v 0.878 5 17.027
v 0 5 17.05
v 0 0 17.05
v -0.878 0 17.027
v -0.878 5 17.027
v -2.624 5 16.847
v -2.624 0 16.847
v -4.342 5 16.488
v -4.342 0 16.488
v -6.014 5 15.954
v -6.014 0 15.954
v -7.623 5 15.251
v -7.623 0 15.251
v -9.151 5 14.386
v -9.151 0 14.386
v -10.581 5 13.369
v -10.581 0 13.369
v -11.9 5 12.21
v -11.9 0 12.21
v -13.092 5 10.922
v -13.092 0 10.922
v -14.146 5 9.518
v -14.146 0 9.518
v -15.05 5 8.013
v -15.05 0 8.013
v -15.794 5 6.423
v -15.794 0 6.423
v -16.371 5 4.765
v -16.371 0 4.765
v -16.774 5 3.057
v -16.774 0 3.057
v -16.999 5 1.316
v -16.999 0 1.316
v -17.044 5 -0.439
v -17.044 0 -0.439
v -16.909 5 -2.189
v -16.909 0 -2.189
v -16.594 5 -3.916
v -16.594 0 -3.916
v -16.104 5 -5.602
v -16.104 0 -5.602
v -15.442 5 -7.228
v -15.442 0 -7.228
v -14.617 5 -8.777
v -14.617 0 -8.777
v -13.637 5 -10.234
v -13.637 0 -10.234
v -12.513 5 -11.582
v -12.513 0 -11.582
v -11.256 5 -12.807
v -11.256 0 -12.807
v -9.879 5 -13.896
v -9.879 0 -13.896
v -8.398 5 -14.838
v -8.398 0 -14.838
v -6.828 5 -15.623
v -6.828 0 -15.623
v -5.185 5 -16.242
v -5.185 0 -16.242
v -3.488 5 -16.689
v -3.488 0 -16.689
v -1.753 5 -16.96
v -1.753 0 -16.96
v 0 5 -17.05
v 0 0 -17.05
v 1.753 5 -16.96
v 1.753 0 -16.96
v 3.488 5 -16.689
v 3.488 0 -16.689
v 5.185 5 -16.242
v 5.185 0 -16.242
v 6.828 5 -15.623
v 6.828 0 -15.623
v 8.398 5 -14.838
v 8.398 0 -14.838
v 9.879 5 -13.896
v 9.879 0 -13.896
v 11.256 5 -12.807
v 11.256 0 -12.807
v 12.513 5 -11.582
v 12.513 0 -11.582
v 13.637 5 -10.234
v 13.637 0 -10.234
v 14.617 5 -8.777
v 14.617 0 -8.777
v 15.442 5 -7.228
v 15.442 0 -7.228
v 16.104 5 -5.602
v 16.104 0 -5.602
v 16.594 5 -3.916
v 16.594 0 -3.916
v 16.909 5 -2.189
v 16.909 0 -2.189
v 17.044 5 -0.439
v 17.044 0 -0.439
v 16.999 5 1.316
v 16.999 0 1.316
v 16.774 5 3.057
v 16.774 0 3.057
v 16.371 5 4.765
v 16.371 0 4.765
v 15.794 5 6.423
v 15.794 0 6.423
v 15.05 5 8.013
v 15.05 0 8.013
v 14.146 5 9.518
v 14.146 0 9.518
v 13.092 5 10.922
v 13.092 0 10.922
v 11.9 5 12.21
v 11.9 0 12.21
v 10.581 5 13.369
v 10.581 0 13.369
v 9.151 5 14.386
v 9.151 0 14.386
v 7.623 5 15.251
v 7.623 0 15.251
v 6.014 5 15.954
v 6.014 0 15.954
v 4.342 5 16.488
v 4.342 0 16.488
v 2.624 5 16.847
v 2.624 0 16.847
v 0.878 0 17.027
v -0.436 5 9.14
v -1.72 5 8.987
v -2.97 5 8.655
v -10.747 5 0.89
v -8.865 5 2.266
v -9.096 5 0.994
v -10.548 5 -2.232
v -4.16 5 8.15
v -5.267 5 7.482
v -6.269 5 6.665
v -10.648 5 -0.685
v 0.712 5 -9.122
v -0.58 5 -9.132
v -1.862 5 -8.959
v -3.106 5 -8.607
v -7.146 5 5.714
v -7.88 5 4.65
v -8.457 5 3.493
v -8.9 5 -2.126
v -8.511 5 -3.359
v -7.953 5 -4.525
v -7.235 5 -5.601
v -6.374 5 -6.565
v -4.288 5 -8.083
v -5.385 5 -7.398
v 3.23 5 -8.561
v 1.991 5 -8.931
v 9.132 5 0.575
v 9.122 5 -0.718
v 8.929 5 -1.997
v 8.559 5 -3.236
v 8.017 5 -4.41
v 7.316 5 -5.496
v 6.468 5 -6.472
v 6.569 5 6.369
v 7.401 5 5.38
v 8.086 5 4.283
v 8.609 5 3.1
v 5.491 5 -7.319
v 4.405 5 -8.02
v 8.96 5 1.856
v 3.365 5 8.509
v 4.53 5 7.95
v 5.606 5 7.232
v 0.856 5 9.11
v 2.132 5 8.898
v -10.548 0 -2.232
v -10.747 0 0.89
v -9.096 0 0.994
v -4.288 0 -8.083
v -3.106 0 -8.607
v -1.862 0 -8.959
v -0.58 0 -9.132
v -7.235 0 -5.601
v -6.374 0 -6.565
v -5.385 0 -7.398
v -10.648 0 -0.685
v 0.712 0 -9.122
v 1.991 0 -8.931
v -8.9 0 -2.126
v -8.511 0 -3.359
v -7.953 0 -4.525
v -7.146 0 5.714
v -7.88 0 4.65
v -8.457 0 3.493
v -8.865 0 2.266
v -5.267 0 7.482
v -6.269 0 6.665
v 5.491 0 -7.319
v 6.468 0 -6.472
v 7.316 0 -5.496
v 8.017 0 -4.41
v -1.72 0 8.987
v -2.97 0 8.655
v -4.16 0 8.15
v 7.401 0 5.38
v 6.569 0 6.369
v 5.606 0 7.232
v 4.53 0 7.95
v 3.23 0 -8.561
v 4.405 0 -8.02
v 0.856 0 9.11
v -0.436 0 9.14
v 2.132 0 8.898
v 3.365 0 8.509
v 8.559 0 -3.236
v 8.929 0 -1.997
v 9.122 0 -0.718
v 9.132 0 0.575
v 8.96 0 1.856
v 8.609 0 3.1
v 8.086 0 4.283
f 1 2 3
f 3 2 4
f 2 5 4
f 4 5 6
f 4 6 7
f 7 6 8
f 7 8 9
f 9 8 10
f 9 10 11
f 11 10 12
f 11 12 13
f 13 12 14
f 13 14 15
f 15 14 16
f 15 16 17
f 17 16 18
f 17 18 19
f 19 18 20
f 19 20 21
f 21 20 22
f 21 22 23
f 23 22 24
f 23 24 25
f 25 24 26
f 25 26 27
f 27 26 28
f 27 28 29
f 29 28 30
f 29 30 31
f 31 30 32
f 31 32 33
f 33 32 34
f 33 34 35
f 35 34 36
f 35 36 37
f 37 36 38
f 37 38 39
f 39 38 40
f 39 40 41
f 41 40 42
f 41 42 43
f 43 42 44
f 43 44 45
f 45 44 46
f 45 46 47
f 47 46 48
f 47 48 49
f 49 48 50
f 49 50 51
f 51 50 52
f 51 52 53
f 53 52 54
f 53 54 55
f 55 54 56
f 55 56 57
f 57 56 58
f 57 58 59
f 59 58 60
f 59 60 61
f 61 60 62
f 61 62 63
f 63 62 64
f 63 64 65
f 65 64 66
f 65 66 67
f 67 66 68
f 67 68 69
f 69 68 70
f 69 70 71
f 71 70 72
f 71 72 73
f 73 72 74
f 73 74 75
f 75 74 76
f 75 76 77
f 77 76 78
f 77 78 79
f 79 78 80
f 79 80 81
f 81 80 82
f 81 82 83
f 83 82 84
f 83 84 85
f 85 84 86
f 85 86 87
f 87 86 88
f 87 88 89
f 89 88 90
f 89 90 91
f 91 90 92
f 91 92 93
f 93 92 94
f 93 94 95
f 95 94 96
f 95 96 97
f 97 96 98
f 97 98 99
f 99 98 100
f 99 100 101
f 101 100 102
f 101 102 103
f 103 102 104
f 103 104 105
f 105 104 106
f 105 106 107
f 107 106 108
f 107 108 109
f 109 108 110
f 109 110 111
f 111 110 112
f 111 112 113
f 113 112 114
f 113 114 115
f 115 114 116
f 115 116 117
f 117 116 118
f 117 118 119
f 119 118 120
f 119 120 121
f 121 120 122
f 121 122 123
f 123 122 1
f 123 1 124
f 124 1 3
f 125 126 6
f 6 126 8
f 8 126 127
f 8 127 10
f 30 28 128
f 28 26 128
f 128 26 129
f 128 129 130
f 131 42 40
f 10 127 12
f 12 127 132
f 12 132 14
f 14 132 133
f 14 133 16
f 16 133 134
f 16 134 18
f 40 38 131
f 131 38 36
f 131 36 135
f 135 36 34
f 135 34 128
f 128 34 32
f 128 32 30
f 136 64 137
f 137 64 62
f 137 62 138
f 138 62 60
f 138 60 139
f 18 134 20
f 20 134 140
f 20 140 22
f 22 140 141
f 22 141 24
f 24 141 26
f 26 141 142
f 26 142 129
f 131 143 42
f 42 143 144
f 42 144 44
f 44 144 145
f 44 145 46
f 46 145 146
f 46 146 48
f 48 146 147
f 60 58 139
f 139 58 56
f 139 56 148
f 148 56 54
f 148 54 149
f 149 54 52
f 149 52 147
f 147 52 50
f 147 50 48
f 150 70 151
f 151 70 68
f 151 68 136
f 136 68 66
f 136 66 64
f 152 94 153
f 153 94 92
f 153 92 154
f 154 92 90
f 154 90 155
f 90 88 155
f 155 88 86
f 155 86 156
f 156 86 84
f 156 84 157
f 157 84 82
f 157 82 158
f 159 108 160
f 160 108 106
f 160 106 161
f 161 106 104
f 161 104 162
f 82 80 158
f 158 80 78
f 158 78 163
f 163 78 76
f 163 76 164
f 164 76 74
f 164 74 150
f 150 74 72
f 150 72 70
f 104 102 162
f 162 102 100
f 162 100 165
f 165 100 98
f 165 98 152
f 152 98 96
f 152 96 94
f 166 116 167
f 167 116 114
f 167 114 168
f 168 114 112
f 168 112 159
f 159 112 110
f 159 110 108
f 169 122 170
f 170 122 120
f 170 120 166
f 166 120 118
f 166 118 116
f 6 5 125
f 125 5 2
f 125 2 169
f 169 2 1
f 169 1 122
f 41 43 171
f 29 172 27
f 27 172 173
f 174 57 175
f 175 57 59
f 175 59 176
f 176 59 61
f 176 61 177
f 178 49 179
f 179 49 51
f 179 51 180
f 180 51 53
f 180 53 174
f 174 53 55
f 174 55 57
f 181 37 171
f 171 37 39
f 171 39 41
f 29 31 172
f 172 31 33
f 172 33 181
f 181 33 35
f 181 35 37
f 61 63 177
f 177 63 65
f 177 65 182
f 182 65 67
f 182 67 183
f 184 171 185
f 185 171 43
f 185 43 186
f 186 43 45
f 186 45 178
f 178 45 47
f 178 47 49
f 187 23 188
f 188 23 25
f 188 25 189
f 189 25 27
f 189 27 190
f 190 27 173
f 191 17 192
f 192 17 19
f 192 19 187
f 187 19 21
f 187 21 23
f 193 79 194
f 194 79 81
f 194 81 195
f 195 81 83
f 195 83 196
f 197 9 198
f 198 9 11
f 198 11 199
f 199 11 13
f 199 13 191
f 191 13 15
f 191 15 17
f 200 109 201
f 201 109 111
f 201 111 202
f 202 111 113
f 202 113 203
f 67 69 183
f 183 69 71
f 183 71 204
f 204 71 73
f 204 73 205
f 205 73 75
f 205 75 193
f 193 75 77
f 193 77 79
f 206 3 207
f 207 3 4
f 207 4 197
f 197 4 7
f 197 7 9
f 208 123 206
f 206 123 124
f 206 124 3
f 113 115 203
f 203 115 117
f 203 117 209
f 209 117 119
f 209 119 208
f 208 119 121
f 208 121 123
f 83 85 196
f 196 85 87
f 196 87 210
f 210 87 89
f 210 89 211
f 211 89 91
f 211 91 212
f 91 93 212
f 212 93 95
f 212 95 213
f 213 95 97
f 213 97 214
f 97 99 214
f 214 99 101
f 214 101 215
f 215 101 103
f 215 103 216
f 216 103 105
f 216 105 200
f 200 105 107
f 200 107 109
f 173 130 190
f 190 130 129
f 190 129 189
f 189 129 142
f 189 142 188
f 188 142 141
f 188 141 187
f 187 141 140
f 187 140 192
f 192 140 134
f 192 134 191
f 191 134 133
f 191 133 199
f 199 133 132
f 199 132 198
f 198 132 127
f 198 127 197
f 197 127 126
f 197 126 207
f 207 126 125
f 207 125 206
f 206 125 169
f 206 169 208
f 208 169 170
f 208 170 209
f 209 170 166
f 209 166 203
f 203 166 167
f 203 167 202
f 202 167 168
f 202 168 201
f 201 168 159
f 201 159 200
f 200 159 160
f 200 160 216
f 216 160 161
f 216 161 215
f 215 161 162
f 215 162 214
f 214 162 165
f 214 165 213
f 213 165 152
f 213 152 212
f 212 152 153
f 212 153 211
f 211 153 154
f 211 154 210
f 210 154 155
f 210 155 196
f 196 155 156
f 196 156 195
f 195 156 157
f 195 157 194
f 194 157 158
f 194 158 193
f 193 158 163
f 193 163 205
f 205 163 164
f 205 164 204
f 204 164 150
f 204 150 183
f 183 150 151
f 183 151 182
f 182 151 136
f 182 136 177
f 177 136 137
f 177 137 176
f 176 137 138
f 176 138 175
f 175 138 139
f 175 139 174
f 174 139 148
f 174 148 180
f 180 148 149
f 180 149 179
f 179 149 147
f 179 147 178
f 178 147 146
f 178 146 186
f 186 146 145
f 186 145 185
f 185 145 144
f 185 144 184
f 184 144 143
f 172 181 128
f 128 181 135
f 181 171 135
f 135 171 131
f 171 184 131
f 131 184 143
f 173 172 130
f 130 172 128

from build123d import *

# Parameters (mm, degrees)
SKETCH_1_R          = 17.05
EXTRUDE_1_DEPTH     = 5
SKETCH_2_R          = 9.15
CUT_EXTRUDE_1_DEPTH = 5
CUT_EXTRUDE_2_DEPTH = 25.625291876


with BuildPart() as part:
    # 草圖1 → 填料-伸長1 (new body)
    with BuildSketch(Plane(origin=(0, 0, 0), x_dir=(1, 0, 0), z_dir=(0, 1, 0))):
        with Locations(Location((0, 0, 0), (0, 0, 270))):
            Circle(SKETCH_1_R)
    extrude(amount=EXTRUDE_1_DEPTH)

    # 草圖2 → 除料-伸長1 (cut)
    with BuildSketch(Plane(origin=(0, 5, 0), x_dir=(1, 0, 0), z_dir=(0, 1, 0))):
        with Locations(Location((0, 0, 0), (0, 0, 270))):
            Circle(SKETCH_2_R)
    extrude(amount=-CUT_EXTRUDE_1_DEPTH, mode=Mode.SUBTRACT)

    # 草圖3 → 除料-伸長2 (cut, through all)
    with BuildSketch(Plane(origin=(0, 5, 0), x_dir=(1, 0, 0), z_dir=(0, 1, 0))):
        Polygon((-10.647976509, 0.685197974), (-10.548439784, 2.231998685), (-8.899610355, 2.125896405), (-9.095873569, -0.993772622), (-10.74706795, -0.889893424), align=None)
    extrude(amount=-CUT_EXTRUDE_2_DEPTH, mode=Mode.SUBTRACT)


solid = part.part
